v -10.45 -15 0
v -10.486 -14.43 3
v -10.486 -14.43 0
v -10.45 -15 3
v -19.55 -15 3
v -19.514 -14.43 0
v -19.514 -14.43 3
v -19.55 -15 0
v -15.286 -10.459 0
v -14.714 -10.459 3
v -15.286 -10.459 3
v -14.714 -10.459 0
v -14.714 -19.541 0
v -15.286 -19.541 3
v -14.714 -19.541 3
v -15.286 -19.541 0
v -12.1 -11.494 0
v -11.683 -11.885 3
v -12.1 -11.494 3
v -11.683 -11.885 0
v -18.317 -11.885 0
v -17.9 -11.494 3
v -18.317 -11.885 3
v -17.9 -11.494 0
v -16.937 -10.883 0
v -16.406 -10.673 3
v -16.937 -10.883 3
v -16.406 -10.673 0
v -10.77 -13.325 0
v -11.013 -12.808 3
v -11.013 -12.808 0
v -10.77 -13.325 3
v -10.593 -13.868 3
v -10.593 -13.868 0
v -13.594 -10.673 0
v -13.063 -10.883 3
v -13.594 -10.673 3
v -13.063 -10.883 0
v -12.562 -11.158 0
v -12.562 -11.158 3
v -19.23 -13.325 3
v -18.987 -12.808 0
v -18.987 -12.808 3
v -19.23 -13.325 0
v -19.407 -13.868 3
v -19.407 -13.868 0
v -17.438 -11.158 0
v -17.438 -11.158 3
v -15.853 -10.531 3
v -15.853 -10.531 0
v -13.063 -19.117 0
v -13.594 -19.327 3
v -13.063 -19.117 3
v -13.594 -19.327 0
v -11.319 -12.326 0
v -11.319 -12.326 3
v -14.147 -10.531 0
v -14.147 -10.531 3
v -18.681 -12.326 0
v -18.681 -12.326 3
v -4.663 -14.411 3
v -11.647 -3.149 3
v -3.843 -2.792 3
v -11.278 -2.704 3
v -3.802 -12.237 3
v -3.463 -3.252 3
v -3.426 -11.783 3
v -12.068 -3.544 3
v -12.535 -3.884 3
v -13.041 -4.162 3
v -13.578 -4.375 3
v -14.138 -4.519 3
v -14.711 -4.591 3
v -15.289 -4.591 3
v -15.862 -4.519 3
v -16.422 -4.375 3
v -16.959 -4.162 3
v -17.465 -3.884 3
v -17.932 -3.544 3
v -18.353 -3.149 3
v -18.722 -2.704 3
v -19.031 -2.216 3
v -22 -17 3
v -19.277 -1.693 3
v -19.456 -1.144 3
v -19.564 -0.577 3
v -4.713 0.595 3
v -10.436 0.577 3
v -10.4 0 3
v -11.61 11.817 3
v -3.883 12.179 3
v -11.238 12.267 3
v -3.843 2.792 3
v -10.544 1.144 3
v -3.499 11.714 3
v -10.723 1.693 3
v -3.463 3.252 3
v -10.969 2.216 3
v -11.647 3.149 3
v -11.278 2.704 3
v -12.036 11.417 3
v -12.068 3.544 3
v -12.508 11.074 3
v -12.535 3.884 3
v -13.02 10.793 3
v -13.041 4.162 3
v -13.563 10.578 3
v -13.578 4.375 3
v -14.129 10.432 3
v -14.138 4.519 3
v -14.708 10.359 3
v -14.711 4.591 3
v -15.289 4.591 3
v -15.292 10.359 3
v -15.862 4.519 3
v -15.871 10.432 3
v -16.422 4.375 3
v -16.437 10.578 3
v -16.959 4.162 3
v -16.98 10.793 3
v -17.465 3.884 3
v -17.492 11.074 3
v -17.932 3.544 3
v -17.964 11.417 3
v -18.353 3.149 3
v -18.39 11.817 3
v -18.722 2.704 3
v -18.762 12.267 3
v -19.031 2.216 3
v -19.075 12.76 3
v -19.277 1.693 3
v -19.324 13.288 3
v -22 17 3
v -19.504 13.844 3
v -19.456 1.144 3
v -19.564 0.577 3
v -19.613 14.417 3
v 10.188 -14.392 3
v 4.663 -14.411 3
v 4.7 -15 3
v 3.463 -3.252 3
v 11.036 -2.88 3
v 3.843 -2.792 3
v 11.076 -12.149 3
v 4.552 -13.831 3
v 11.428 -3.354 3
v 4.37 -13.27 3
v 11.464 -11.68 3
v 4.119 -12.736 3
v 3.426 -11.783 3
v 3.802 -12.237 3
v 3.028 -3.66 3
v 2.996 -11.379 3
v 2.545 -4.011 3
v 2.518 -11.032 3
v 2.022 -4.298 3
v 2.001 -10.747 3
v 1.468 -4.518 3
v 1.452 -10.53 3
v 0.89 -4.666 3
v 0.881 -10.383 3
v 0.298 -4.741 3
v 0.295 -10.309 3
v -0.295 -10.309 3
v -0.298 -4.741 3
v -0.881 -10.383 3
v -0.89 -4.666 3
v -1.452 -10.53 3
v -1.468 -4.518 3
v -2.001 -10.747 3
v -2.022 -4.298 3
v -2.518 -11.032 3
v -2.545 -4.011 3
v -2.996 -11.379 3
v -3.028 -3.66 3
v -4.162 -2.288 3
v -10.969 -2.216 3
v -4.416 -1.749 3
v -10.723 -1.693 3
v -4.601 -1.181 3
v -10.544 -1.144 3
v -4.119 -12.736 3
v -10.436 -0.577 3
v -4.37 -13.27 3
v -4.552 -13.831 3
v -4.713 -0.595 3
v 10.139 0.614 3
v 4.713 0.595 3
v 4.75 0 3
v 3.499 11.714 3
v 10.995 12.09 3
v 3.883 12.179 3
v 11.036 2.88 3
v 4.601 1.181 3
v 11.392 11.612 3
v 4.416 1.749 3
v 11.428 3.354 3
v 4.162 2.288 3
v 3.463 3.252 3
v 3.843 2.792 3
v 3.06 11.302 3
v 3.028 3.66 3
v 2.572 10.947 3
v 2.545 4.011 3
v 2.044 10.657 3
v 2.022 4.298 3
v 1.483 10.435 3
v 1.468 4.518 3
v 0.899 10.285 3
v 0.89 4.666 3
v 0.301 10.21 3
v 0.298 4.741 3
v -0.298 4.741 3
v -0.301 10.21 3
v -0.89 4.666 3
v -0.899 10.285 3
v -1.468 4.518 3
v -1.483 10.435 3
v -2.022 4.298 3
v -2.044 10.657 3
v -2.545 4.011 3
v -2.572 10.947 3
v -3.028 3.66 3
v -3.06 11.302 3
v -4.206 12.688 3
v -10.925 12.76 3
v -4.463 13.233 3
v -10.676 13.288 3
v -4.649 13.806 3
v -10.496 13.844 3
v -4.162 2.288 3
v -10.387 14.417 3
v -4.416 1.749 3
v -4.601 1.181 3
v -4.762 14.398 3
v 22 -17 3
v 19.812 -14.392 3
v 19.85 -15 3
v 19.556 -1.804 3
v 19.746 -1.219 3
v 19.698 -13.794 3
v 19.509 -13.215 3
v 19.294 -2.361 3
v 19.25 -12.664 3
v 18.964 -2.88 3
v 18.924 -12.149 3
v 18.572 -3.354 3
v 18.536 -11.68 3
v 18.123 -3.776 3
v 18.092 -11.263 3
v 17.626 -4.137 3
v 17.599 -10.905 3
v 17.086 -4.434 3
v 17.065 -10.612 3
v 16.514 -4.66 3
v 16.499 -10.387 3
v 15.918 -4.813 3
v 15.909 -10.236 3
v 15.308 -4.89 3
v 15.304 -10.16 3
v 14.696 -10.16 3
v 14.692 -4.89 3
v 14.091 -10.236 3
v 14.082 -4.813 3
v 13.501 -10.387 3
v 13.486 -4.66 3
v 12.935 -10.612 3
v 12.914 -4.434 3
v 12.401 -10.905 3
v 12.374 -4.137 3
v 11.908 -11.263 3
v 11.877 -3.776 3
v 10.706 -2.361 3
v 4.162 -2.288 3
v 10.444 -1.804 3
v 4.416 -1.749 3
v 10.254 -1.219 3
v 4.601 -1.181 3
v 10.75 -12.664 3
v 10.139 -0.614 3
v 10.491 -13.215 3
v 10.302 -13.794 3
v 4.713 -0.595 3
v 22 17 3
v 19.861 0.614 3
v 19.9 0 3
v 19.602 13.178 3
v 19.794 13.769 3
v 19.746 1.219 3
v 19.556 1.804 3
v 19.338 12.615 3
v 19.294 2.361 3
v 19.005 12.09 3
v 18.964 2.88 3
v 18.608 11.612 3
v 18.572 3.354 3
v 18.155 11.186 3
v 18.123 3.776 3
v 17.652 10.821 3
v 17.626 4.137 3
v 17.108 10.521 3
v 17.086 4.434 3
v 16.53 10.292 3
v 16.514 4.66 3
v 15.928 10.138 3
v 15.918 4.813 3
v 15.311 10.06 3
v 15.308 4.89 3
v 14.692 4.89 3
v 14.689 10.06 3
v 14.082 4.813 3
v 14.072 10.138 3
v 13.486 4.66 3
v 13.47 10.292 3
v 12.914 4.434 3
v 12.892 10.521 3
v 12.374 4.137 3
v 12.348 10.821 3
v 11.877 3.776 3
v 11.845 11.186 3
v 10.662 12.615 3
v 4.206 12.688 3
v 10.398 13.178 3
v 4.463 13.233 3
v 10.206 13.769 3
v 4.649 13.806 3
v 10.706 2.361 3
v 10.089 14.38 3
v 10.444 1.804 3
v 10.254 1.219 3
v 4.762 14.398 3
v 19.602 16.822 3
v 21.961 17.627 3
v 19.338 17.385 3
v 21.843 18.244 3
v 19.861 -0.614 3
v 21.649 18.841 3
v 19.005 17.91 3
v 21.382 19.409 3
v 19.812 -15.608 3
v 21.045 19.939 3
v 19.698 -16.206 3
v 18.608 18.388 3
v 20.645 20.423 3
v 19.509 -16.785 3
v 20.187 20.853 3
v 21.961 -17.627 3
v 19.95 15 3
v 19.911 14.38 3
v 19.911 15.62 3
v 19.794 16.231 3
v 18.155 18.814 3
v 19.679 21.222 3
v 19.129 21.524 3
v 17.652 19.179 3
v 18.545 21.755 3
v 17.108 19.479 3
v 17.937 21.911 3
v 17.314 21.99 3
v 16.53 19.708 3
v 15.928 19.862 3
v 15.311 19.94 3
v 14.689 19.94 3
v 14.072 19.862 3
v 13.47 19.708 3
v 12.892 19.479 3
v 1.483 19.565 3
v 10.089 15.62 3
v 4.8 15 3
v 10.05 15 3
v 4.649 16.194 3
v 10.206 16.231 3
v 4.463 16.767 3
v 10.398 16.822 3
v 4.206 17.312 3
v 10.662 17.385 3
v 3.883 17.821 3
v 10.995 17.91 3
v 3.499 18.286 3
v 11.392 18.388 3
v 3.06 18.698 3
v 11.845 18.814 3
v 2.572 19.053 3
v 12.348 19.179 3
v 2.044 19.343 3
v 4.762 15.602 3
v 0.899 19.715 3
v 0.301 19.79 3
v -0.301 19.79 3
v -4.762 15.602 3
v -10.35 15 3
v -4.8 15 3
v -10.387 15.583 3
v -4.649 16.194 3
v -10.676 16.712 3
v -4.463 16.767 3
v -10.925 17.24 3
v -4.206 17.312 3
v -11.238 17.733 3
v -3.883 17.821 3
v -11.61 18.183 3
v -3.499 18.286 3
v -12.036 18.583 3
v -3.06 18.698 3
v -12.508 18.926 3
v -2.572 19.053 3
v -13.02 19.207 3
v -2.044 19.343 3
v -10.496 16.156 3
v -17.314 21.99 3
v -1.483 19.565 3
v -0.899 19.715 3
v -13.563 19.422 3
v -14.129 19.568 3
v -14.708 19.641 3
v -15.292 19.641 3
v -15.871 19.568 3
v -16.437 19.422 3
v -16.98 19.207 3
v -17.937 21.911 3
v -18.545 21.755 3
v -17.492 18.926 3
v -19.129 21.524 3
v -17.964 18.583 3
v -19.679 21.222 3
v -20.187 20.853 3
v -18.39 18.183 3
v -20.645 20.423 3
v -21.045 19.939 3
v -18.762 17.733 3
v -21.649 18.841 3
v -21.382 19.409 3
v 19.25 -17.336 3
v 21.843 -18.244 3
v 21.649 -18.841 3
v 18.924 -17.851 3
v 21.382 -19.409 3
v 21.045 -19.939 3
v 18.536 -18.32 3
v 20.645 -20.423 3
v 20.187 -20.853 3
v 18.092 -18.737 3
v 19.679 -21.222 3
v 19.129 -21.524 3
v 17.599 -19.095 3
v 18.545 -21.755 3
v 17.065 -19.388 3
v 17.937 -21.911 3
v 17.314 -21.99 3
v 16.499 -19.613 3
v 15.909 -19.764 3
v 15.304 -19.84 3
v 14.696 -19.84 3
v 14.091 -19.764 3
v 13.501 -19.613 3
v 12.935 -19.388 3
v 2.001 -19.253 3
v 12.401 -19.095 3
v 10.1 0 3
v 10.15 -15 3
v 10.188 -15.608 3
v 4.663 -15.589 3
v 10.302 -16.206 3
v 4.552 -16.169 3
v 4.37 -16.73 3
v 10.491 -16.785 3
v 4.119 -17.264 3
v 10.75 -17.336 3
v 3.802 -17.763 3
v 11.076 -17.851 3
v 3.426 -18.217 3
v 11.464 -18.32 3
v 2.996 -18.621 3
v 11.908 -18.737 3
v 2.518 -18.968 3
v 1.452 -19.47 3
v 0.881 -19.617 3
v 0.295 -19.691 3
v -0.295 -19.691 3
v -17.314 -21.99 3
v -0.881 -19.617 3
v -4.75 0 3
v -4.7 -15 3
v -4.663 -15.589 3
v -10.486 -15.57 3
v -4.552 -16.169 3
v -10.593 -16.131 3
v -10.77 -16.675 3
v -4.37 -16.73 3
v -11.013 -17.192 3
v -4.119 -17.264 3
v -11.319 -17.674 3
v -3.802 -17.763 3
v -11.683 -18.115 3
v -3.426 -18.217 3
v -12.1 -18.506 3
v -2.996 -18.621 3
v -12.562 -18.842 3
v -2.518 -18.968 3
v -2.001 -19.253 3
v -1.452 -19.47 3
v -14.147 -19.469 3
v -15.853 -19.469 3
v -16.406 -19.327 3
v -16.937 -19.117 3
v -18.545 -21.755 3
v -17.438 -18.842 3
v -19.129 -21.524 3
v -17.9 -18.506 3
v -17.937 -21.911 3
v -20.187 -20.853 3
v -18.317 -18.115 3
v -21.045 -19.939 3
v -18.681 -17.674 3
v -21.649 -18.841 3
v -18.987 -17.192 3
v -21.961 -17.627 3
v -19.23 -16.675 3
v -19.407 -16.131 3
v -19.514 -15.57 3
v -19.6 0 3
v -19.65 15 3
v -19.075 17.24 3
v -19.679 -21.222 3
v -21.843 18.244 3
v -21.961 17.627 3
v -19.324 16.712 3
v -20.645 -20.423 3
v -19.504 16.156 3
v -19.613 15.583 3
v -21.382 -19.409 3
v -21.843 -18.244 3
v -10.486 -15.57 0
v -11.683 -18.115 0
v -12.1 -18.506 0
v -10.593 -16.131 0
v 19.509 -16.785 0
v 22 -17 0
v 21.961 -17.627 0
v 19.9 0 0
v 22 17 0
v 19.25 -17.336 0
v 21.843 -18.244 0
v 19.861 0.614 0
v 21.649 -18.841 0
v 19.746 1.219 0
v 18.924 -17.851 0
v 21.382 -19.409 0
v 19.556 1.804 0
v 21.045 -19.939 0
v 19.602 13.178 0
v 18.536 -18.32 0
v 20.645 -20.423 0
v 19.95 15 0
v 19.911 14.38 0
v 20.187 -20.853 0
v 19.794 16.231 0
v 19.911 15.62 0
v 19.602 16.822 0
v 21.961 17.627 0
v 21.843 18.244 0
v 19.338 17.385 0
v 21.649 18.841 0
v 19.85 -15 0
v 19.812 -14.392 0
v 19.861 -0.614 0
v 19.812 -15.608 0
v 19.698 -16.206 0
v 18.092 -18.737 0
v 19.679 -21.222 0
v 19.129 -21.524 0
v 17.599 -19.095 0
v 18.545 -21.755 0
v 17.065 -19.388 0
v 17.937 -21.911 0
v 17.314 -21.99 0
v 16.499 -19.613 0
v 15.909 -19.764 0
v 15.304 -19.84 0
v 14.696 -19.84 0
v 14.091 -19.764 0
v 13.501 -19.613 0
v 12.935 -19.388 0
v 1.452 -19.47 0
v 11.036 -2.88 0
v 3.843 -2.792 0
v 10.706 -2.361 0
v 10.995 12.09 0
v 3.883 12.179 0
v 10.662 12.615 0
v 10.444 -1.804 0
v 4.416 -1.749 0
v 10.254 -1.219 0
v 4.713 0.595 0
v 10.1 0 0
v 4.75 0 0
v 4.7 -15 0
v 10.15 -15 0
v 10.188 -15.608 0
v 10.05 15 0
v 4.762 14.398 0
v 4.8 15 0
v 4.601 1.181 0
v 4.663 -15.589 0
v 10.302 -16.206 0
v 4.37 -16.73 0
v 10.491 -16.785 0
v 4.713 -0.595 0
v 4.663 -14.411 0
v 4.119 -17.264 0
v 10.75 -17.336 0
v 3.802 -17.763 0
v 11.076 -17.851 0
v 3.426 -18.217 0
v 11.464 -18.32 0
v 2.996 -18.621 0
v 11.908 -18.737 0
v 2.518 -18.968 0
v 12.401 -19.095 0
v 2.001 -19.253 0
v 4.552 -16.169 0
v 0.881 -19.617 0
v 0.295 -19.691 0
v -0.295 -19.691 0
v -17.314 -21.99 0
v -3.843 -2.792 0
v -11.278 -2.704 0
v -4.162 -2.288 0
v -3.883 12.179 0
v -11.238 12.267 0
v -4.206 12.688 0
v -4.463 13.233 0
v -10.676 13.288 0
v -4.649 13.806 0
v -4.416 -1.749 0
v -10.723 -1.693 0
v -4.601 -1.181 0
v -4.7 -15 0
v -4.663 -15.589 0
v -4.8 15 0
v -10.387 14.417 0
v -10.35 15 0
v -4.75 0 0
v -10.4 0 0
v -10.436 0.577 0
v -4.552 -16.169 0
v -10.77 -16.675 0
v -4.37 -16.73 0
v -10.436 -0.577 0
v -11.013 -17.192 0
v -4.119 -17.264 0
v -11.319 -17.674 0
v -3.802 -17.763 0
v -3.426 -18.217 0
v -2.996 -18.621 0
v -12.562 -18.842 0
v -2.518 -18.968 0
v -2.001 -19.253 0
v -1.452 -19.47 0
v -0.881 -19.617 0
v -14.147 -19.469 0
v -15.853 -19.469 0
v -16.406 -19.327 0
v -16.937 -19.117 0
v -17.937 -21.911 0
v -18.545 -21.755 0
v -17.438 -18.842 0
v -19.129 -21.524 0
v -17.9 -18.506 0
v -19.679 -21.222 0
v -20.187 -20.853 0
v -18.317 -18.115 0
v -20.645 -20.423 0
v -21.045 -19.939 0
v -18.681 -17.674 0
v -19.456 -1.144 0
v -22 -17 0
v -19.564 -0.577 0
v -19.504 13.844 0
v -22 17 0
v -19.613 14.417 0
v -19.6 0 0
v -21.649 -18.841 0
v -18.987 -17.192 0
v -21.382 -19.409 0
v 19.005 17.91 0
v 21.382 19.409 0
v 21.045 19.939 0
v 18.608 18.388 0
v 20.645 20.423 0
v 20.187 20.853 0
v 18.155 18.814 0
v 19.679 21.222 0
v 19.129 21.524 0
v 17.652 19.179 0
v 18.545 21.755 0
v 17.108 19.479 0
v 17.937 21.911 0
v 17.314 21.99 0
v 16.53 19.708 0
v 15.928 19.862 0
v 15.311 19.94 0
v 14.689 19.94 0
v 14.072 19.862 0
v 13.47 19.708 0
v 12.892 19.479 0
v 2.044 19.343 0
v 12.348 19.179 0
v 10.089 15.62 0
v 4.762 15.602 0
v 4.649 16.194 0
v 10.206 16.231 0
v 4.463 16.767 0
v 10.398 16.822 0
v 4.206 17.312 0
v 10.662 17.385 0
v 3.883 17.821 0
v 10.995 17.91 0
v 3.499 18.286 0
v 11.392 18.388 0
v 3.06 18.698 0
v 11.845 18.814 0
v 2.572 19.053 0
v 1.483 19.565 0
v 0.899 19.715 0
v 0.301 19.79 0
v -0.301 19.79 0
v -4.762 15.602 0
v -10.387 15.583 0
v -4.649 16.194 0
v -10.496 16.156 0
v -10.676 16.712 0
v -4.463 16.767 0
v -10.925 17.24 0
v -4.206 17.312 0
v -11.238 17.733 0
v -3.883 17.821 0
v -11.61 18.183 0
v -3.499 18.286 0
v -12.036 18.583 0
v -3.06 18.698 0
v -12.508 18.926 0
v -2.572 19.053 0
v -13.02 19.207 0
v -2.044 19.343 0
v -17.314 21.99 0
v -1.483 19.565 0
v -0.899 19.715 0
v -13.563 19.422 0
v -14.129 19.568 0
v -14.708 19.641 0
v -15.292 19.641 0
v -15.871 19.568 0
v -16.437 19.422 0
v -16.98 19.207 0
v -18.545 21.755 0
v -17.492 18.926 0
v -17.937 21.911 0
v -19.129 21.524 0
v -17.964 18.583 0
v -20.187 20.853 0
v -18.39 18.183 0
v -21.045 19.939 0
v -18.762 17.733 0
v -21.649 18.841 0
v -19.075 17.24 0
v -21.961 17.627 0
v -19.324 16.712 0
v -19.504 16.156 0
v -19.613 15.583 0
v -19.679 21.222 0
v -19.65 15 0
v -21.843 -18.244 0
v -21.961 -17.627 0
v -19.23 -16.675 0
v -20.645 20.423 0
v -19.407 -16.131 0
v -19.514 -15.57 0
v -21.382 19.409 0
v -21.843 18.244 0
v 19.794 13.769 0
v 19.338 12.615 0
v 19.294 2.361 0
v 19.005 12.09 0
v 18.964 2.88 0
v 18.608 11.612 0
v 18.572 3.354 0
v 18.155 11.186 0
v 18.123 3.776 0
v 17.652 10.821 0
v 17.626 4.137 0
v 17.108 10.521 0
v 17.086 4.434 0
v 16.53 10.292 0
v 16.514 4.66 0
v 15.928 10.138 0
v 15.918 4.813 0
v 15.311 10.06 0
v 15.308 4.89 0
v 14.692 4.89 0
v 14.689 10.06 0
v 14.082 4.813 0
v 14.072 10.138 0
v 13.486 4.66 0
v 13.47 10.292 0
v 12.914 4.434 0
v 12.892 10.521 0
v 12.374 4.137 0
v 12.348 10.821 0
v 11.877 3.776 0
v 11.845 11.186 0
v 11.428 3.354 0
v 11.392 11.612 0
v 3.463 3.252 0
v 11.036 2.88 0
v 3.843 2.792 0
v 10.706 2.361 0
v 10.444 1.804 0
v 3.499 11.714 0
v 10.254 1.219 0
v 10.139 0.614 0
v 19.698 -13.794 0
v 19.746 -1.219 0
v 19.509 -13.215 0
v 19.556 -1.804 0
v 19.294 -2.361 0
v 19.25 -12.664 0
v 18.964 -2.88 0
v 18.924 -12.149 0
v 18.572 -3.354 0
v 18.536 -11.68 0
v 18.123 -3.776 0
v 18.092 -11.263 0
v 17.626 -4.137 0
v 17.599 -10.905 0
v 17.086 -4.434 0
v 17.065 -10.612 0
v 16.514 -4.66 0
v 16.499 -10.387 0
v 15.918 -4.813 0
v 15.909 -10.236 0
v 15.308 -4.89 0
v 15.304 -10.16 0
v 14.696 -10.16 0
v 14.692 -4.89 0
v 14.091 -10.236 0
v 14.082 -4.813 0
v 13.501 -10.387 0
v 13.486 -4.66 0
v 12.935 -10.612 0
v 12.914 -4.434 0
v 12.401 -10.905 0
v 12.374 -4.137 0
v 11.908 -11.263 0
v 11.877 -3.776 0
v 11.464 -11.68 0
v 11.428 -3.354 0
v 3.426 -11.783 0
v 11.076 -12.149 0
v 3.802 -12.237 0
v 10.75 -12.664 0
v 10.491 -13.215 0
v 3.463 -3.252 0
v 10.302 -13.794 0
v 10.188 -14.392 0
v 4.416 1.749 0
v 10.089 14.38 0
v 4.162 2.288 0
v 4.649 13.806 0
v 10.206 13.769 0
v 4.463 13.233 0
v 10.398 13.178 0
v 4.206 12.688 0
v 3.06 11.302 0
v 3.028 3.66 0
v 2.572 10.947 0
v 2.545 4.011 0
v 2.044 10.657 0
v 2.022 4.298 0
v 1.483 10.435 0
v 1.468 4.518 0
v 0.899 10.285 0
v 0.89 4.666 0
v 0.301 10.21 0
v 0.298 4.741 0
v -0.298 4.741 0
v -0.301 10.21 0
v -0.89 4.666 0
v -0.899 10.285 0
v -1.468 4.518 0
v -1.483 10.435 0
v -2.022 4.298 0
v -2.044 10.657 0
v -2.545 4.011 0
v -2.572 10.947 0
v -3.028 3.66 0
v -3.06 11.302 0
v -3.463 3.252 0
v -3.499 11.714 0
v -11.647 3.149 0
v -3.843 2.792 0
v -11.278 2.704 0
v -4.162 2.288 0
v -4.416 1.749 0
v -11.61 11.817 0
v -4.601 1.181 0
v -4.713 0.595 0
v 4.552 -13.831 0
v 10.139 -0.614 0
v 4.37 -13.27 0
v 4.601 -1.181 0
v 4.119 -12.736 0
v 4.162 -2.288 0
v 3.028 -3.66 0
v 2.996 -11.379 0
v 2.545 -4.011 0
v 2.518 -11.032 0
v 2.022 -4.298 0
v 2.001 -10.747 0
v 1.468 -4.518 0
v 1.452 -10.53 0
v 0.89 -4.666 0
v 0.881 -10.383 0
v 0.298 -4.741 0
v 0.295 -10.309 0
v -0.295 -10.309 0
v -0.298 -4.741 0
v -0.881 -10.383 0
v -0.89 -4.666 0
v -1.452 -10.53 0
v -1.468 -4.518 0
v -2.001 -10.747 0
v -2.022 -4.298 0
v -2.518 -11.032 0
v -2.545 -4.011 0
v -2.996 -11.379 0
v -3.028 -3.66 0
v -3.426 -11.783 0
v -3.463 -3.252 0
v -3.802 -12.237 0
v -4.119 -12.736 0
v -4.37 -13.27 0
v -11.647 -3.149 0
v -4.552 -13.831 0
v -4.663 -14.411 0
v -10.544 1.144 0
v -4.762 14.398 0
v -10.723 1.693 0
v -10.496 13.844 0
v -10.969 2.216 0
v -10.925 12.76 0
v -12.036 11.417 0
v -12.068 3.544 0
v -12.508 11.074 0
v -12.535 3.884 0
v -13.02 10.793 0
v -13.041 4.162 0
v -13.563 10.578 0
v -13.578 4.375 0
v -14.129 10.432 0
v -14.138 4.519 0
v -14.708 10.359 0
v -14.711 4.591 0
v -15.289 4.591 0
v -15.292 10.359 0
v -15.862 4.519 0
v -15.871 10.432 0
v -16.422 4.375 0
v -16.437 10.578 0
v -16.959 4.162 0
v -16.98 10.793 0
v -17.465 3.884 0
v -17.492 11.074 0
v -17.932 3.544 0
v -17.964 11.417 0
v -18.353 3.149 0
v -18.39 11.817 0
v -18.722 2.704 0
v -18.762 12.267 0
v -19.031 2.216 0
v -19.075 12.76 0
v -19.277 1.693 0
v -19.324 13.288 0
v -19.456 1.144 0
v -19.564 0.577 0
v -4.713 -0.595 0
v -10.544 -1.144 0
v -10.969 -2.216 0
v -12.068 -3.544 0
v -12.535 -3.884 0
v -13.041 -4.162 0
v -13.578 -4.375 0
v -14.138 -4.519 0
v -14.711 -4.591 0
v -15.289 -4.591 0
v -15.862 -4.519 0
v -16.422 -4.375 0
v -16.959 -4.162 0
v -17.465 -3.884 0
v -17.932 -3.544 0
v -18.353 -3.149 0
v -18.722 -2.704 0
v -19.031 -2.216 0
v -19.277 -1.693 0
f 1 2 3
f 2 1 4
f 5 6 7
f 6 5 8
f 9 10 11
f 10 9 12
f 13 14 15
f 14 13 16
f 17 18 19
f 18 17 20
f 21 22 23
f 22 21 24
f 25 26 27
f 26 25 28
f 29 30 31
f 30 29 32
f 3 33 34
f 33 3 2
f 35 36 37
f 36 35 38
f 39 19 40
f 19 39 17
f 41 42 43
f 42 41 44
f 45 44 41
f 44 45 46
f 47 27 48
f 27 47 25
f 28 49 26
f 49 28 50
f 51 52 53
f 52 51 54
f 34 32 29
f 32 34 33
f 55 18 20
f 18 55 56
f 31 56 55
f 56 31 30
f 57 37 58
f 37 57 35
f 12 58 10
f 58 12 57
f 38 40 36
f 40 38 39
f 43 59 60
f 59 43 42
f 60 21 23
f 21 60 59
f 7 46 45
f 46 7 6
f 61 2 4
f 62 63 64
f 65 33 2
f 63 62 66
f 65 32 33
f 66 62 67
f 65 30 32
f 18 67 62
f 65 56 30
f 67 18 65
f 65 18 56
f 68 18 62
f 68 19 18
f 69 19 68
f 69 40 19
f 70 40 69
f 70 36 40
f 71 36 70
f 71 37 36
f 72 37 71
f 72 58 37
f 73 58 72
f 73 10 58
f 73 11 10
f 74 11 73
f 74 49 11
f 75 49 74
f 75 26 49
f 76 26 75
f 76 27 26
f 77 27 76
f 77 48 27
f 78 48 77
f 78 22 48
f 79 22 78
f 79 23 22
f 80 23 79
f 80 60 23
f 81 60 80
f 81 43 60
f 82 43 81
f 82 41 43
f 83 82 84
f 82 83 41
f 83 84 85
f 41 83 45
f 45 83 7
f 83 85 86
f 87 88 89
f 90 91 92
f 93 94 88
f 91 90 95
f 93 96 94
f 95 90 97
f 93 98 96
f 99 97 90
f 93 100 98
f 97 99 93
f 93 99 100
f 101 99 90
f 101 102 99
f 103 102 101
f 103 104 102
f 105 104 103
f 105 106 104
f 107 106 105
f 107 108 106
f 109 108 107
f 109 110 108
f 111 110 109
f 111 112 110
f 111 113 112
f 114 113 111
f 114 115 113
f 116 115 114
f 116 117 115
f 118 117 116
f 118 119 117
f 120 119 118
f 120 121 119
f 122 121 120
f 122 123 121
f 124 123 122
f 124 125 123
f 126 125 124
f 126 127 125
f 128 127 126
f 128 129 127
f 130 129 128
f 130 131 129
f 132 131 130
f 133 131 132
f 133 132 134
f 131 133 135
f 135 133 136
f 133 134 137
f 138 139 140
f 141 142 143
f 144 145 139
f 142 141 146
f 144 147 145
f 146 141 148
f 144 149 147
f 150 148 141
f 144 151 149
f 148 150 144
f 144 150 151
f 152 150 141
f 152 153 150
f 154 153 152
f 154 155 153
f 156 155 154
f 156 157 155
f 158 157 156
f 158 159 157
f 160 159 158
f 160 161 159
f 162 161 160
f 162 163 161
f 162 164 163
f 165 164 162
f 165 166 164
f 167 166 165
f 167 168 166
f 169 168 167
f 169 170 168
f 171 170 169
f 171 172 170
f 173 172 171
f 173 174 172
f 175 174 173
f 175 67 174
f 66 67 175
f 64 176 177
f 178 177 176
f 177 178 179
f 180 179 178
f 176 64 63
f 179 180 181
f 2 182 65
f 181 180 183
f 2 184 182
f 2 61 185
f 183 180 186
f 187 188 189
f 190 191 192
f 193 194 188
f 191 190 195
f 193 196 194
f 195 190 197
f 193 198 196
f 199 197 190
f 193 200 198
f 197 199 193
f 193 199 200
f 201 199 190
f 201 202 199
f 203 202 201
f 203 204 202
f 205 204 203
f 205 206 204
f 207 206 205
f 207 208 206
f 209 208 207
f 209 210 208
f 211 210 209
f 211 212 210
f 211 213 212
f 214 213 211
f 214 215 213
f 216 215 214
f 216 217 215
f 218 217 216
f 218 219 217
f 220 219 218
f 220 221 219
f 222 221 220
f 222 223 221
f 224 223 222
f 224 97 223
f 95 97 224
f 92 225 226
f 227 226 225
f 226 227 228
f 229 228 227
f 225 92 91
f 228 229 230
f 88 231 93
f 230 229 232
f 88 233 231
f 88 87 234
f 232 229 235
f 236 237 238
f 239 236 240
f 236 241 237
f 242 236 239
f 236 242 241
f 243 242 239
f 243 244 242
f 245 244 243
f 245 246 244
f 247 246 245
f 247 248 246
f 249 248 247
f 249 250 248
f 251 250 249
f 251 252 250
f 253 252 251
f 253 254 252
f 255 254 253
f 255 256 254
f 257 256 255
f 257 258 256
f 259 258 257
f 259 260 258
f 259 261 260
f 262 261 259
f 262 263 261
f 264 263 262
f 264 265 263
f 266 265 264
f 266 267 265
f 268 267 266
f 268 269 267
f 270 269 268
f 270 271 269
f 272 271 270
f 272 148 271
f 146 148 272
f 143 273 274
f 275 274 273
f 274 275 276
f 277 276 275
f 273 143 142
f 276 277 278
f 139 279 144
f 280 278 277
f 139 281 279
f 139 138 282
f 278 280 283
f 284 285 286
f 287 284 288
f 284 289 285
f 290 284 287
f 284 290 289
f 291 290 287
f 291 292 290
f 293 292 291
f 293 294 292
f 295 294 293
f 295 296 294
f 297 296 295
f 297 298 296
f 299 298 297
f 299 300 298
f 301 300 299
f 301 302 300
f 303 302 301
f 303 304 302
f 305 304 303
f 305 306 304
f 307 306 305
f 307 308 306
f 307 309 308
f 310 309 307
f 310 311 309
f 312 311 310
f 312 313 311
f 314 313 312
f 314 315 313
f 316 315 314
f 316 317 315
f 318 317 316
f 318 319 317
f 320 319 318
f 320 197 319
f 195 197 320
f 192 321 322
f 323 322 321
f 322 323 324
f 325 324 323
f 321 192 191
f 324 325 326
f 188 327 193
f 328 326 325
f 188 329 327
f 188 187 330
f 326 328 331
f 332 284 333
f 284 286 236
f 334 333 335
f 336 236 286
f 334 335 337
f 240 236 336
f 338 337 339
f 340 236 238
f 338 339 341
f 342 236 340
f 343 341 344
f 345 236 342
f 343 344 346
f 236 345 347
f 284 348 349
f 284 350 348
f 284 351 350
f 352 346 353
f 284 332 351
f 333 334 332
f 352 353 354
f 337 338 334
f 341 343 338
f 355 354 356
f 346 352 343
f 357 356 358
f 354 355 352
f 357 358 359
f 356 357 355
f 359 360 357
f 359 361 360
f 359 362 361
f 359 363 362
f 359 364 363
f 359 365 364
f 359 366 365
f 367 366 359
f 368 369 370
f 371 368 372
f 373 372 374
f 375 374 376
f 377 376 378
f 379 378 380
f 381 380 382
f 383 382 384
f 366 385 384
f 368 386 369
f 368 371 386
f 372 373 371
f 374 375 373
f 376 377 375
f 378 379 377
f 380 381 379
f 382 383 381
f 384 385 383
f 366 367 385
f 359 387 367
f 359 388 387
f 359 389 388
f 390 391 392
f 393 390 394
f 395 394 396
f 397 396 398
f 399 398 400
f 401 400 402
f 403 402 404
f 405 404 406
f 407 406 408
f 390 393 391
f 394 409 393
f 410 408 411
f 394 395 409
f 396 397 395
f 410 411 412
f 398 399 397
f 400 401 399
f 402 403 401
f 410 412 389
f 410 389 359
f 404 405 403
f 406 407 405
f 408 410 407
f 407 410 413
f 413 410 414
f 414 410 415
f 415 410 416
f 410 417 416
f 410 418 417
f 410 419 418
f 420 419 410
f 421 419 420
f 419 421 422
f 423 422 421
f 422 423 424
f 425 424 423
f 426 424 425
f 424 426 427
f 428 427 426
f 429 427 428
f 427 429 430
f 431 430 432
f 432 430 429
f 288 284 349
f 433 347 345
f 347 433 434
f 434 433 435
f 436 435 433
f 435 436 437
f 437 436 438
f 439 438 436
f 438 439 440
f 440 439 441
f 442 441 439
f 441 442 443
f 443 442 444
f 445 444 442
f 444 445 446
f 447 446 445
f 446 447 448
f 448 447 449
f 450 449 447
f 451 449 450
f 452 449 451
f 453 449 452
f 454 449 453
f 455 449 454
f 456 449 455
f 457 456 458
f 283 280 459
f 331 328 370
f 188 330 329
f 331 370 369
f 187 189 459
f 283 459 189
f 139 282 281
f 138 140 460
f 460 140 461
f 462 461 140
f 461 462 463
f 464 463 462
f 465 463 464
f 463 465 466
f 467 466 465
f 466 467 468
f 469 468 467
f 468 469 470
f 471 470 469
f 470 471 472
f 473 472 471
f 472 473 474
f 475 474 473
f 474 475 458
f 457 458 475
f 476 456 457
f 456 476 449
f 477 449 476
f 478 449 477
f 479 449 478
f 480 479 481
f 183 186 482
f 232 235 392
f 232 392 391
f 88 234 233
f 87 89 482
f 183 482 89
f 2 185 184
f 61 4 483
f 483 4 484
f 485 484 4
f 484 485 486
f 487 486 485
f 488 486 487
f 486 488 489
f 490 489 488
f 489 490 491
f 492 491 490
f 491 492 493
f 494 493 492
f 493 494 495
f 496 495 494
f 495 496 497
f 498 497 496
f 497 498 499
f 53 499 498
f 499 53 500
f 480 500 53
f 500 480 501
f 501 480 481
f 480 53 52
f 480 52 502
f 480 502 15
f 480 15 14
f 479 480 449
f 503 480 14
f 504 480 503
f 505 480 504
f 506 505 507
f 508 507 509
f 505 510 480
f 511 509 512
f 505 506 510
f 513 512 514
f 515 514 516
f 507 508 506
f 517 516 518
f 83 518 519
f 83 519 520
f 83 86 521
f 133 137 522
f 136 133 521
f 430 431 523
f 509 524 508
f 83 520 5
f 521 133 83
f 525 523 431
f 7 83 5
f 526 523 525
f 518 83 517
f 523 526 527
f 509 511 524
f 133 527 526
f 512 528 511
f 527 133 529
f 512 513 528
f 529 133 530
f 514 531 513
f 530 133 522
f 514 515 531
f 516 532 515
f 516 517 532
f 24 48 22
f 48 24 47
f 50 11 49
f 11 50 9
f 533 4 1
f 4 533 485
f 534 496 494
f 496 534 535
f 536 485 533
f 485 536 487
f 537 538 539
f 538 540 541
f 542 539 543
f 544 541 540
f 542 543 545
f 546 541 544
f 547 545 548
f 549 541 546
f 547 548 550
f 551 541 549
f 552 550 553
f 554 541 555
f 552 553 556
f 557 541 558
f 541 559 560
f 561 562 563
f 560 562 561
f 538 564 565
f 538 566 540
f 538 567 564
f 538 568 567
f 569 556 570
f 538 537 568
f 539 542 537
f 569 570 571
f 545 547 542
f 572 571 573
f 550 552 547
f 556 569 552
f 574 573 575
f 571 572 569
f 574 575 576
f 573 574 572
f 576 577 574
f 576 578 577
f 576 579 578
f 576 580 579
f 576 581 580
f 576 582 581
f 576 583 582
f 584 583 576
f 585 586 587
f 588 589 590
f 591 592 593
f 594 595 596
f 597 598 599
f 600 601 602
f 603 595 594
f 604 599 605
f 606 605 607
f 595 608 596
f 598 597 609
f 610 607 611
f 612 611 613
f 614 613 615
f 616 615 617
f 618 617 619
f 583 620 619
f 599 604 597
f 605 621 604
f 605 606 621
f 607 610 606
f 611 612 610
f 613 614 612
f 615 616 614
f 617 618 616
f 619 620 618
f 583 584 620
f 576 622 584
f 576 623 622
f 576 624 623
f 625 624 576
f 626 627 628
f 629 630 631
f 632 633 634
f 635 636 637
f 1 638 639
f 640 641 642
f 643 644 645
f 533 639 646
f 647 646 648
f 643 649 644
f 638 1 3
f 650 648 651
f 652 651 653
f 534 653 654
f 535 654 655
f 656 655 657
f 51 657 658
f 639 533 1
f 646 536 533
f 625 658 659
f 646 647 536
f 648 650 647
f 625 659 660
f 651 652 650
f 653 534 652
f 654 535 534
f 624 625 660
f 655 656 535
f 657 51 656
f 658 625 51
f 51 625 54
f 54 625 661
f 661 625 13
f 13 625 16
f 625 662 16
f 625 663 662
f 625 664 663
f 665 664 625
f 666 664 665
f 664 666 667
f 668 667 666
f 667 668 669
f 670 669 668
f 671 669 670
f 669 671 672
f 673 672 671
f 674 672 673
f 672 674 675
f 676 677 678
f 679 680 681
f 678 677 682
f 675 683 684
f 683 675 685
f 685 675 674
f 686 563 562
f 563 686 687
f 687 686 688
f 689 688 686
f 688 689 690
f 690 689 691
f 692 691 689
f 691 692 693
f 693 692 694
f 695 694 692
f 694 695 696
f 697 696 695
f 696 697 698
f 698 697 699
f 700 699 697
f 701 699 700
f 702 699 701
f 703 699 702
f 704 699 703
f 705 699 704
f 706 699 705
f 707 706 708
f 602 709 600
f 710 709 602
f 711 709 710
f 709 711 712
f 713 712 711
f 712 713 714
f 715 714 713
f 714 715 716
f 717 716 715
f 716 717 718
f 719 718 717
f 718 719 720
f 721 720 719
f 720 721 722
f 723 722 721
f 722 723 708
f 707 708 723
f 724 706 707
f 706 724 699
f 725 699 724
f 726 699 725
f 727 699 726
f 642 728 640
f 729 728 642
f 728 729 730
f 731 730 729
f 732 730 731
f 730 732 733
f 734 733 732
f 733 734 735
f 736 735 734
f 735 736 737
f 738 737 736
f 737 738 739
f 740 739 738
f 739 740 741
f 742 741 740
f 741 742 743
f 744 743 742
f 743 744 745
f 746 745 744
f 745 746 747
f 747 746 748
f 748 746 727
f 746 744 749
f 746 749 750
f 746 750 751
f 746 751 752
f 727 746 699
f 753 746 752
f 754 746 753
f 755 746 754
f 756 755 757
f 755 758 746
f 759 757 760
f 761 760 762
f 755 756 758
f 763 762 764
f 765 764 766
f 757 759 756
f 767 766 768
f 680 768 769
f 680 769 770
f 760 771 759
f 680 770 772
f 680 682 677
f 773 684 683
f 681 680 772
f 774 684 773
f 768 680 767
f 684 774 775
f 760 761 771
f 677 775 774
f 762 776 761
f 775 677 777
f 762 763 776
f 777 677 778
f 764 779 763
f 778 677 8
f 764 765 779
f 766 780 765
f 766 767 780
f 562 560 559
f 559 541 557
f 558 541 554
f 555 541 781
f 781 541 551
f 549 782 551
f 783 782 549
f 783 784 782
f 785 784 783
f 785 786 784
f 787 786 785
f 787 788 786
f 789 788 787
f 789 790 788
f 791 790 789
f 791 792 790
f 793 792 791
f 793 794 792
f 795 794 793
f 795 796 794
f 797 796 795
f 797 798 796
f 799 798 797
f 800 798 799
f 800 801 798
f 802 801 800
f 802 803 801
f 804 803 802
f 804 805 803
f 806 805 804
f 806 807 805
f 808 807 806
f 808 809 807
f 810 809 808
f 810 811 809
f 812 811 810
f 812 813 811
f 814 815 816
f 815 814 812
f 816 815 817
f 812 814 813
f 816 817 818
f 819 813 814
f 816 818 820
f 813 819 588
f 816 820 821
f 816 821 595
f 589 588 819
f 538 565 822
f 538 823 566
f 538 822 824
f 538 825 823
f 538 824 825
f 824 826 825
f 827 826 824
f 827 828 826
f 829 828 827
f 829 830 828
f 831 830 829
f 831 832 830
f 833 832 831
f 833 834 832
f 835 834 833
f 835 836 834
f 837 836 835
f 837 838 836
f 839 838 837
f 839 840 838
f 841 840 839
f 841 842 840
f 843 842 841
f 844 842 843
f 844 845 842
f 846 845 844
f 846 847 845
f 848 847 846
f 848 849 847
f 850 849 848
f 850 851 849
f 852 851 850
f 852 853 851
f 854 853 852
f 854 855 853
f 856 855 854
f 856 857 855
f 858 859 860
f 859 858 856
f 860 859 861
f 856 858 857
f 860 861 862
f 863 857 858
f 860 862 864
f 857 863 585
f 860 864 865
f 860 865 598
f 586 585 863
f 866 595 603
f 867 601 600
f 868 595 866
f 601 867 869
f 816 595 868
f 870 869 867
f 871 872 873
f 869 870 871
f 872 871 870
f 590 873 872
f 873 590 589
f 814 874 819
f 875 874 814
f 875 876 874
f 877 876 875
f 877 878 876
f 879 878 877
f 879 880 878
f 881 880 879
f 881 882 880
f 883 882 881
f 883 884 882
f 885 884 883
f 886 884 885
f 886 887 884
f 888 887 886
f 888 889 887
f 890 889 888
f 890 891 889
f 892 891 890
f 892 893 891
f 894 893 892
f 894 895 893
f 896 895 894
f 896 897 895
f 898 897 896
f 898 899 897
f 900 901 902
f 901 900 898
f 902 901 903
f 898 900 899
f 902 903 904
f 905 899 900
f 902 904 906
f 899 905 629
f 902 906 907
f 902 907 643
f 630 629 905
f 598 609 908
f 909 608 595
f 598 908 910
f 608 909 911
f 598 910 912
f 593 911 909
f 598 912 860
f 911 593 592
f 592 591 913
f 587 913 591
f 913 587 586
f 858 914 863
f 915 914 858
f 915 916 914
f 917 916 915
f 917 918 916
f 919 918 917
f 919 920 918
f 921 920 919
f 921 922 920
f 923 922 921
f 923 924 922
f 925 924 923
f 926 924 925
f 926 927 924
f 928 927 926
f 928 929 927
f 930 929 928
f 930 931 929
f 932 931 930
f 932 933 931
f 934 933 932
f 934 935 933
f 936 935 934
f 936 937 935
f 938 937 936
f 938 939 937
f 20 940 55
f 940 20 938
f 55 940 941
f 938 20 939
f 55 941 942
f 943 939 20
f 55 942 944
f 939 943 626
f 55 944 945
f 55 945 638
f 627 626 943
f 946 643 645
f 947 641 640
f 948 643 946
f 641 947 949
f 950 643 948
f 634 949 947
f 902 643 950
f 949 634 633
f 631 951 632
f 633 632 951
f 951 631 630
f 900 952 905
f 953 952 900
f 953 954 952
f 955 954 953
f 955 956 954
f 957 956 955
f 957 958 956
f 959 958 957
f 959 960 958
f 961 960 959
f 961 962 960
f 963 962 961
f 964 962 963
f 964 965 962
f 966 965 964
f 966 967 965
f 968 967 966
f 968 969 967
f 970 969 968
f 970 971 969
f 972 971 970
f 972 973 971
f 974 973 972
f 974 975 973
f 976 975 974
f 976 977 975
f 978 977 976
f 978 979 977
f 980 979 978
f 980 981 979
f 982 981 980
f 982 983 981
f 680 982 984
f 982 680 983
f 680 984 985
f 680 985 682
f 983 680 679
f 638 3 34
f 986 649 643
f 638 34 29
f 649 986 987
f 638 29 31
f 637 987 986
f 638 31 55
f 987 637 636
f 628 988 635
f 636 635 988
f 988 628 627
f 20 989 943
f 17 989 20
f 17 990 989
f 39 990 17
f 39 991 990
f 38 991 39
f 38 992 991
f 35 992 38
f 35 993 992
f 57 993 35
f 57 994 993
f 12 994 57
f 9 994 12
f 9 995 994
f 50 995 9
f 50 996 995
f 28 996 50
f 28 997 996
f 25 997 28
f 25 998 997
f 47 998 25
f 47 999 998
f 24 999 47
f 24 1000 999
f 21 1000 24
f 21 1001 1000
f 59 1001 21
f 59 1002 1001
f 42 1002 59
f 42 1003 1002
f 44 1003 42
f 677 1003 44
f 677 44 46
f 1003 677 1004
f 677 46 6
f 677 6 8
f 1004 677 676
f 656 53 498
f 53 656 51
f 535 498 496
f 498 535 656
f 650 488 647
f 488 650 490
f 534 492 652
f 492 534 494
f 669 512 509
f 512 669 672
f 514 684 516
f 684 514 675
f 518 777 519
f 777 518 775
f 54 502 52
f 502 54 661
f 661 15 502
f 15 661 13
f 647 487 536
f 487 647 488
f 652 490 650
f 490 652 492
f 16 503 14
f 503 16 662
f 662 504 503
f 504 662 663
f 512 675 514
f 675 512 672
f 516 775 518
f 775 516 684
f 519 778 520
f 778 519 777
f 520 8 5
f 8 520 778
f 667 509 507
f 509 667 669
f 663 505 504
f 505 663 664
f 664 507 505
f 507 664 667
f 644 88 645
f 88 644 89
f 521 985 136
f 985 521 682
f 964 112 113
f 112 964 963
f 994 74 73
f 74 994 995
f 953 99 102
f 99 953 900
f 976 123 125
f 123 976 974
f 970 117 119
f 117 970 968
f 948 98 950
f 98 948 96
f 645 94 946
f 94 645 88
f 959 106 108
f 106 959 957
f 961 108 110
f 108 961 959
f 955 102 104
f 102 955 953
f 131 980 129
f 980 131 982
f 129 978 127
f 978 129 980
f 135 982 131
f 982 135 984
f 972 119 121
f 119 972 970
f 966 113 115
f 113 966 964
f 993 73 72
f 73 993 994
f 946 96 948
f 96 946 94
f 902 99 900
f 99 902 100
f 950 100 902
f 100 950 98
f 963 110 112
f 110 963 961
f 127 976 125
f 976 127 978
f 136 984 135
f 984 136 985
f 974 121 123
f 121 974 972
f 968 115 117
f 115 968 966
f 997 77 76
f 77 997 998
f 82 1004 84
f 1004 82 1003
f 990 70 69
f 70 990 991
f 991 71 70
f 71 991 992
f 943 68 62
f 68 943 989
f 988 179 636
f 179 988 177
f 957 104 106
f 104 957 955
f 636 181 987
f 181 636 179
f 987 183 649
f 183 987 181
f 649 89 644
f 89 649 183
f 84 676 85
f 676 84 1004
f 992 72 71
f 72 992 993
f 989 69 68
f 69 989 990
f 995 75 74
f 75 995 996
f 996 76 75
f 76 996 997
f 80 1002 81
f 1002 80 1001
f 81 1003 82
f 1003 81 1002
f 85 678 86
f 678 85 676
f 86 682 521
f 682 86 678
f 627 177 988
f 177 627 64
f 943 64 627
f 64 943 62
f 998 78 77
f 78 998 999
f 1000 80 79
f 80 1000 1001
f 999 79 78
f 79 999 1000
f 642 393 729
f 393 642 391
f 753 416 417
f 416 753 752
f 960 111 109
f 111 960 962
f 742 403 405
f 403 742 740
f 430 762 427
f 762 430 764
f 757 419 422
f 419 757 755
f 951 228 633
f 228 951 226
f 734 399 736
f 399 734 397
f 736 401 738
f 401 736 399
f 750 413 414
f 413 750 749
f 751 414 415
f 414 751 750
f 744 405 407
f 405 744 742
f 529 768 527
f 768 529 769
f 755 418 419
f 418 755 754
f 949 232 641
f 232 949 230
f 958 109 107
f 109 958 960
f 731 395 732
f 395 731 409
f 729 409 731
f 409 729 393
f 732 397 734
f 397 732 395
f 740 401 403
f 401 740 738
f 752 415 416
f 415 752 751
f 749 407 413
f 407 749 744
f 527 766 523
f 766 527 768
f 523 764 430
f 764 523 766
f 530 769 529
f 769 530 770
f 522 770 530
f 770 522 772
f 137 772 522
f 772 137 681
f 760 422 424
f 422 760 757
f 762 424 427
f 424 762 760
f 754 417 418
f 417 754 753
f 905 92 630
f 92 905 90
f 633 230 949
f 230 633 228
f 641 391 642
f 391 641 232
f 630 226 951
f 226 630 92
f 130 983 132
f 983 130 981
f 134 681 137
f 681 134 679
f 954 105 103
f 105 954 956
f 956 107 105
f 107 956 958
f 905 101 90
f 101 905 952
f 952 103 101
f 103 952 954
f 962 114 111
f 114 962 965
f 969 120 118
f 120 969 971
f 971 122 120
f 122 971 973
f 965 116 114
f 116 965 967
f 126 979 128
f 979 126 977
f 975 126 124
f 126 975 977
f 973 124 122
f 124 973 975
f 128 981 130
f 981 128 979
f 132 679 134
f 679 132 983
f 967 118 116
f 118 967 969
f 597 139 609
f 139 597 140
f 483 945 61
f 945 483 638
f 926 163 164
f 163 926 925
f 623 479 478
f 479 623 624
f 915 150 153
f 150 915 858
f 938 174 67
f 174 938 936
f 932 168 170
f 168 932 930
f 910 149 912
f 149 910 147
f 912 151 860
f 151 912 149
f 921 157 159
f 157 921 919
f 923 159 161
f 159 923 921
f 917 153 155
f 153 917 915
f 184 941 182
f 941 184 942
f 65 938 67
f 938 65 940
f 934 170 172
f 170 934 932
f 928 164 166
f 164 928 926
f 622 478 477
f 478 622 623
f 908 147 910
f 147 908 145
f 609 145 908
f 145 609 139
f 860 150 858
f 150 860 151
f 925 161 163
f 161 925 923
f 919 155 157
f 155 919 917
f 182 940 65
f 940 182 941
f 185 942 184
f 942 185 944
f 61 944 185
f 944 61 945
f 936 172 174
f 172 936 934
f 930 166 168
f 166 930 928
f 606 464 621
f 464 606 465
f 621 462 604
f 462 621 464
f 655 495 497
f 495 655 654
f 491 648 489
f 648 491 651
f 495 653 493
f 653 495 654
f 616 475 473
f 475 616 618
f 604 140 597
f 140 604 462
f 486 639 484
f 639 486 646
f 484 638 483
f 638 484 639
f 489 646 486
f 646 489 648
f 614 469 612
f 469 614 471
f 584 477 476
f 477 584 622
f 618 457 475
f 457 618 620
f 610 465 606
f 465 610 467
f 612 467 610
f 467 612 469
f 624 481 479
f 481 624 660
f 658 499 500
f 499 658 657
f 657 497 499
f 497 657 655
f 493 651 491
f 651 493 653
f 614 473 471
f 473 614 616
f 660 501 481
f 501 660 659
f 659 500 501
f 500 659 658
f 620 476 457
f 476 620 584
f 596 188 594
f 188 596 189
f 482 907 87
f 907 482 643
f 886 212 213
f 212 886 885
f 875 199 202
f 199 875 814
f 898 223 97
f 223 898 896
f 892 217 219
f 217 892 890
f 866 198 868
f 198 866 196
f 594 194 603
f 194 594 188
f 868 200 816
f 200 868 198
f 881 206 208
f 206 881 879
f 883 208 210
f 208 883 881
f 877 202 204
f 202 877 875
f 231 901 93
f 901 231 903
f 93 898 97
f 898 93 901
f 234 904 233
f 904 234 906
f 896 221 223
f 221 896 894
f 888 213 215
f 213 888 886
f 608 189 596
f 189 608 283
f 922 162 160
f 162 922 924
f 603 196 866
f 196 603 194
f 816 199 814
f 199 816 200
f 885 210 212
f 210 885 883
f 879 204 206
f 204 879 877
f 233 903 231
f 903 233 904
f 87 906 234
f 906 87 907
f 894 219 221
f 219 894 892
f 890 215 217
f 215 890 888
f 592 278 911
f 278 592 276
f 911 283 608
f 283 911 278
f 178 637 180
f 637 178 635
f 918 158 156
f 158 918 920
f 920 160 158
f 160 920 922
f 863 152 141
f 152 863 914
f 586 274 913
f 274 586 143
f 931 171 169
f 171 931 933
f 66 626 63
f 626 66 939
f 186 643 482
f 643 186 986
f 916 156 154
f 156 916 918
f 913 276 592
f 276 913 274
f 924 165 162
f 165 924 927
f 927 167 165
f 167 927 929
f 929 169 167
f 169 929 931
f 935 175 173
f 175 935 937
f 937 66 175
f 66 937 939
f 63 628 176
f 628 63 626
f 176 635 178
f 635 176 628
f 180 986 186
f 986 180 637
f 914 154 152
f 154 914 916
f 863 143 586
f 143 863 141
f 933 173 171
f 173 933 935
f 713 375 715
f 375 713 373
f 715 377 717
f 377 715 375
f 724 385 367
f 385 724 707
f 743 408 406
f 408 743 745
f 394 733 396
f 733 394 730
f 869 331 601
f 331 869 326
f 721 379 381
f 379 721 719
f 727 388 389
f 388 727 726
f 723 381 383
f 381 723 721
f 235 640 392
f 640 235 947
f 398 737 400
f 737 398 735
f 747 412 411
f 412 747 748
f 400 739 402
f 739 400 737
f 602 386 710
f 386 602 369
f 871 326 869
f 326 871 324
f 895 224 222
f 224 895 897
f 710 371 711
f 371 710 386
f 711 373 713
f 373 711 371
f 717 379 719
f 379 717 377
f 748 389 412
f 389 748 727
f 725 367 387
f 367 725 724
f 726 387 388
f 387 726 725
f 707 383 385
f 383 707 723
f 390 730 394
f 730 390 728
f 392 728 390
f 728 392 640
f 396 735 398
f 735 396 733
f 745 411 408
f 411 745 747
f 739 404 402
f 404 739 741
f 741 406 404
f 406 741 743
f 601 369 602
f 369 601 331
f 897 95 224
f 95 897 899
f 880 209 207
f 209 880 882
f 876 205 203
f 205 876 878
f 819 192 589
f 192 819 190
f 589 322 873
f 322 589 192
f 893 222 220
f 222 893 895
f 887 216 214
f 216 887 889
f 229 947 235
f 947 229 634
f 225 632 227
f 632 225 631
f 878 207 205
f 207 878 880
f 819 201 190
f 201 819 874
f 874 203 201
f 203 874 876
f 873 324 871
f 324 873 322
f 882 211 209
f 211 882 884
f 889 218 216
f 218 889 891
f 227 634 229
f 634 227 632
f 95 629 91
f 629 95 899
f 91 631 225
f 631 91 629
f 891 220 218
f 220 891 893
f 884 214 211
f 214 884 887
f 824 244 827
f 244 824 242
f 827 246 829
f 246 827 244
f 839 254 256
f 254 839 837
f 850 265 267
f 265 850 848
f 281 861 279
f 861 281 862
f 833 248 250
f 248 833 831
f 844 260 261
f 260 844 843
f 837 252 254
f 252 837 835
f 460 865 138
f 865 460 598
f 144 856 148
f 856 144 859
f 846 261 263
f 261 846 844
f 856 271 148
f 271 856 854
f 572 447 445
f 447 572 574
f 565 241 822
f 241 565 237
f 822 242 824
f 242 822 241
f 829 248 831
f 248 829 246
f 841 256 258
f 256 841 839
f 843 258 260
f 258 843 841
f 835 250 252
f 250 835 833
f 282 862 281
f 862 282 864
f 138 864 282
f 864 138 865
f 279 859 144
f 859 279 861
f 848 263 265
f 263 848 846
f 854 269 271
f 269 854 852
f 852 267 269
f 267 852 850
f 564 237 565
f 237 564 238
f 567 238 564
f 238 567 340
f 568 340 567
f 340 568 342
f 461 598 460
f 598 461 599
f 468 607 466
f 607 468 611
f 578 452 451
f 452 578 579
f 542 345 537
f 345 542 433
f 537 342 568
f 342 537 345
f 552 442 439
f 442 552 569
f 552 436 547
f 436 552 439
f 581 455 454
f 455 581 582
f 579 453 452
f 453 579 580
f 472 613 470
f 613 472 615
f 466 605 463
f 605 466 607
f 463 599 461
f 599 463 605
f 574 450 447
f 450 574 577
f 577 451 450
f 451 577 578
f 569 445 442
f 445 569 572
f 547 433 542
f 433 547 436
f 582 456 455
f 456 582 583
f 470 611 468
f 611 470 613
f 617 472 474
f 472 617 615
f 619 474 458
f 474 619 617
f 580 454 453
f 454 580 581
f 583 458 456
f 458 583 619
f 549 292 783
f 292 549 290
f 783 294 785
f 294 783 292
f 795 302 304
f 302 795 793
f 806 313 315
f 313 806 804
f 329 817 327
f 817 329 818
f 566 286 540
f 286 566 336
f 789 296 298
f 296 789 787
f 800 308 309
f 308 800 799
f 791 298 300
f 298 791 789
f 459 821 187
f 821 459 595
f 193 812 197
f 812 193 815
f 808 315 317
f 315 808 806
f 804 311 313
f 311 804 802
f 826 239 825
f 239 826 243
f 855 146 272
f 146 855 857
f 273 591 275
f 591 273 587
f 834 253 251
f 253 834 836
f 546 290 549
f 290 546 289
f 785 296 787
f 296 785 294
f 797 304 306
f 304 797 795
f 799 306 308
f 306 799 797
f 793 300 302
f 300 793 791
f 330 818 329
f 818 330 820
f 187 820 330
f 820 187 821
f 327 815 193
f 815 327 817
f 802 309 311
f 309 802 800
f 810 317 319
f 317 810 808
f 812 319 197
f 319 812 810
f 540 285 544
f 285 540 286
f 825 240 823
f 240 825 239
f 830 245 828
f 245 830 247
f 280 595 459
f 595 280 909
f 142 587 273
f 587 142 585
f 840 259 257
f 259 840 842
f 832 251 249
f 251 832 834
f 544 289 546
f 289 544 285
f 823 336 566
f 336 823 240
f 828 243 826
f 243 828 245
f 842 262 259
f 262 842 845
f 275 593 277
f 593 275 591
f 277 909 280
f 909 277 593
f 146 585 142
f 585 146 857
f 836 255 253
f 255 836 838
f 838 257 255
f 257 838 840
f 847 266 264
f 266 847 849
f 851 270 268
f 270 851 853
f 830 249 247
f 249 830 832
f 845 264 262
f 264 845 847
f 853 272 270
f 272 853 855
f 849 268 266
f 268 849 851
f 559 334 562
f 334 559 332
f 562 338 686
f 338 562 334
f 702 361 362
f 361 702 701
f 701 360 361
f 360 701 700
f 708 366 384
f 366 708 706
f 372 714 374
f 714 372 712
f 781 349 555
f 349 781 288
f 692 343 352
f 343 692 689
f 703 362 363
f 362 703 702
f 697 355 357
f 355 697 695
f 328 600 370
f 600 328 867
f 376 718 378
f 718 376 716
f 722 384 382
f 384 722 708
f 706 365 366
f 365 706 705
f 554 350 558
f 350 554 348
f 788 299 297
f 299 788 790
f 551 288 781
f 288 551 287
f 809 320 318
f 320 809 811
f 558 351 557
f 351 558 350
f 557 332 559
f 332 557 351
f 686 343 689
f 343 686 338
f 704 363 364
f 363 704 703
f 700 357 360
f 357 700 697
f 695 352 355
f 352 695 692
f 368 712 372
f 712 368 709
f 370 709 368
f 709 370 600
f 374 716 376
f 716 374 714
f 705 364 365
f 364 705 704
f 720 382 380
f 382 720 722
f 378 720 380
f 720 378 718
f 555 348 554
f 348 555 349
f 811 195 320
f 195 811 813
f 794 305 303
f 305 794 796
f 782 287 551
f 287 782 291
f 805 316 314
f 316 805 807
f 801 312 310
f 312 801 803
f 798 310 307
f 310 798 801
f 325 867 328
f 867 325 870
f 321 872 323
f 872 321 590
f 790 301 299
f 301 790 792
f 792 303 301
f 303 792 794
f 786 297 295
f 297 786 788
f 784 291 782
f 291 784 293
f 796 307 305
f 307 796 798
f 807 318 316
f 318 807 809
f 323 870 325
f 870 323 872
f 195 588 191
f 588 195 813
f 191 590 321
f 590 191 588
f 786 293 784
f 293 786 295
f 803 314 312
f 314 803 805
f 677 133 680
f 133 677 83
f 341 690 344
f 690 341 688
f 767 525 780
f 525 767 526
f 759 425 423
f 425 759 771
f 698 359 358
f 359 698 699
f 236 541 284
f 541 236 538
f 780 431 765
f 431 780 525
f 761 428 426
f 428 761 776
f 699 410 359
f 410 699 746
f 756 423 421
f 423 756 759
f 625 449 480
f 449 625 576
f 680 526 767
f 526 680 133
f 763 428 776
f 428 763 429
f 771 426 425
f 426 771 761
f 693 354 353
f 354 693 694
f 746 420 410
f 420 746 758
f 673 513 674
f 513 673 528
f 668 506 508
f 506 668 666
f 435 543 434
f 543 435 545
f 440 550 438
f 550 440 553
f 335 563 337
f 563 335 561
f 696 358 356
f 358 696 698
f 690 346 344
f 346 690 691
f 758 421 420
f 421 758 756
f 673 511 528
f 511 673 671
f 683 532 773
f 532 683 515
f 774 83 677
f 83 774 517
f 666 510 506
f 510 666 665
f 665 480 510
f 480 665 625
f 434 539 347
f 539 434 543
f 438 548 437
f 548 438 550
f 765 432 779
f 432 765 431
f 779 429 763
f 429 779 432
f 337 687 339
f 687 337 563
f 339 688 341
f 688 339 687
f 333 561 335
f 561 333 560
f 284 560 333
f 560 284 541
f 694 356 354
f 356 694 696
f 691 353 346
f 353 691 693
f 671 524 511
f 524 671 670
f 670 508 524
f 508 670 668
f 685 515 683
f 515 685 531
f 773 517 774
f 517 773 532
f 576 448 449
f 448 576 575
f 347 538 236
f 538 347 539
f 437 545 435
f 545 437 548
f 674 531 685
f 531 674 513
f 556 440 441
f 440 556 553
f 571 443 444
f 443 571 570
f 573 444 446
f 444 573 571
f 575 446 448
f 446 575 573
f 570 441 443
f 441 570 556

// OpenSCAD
$fn = 50;


difference() {
	union() {
		hull() {
			translate(v = [-17.0000000000, 17.0000000000, 0]) {
				cylinder(h = 3, r = 5);
			}
			translate(v = [17.0000000000, 17.0000000000, 0]) {
				cylinder(h = 3, r = 5);
			}
			translate(v = [-17.0000000000, -17.0000000000, 0]) {
				cylinder(h = 3, r = 5);
			}
			translate(v = [17.0000000000, -17.0000000000, 0]) {
				cylinder(h = 3, r = 5);
			}
		}
	}
	union() {
		translate(v = [-15, -15, 0]) {
			cylinder(h = 3, r = 4.5500000000);
		}
		translate(v = [-15, 0, 0]) {
			cylinder(h = 3, r = 4.6000000000);
		}
		translate(v = [-15, 15, 0]) {
			cylinder(h = 3, r = 4.6500000000);
		}
		translate(v = [0, -15, 0]) {
			cylinder(h = 3, r = 4.7000000000);
		}
		cylinder(h = 3, r = 4.7500000000);
		translate(v = [0, 15, 0]) {
			cylinder(h = 3, r = 4.8000000000);
		}
		translate(v = [15, -15, 0]) {
			cylinder(h = 3, r = 4.8500000000);
		}
		translate(v = [15, 0, 0]) {
			cylinder(h = 3, r = 4.9000000000);
		}
		translate(v = [15, 15, 0]) {
			cylinder(h = 3, r = 4.9500000000);
		}
	}
}
